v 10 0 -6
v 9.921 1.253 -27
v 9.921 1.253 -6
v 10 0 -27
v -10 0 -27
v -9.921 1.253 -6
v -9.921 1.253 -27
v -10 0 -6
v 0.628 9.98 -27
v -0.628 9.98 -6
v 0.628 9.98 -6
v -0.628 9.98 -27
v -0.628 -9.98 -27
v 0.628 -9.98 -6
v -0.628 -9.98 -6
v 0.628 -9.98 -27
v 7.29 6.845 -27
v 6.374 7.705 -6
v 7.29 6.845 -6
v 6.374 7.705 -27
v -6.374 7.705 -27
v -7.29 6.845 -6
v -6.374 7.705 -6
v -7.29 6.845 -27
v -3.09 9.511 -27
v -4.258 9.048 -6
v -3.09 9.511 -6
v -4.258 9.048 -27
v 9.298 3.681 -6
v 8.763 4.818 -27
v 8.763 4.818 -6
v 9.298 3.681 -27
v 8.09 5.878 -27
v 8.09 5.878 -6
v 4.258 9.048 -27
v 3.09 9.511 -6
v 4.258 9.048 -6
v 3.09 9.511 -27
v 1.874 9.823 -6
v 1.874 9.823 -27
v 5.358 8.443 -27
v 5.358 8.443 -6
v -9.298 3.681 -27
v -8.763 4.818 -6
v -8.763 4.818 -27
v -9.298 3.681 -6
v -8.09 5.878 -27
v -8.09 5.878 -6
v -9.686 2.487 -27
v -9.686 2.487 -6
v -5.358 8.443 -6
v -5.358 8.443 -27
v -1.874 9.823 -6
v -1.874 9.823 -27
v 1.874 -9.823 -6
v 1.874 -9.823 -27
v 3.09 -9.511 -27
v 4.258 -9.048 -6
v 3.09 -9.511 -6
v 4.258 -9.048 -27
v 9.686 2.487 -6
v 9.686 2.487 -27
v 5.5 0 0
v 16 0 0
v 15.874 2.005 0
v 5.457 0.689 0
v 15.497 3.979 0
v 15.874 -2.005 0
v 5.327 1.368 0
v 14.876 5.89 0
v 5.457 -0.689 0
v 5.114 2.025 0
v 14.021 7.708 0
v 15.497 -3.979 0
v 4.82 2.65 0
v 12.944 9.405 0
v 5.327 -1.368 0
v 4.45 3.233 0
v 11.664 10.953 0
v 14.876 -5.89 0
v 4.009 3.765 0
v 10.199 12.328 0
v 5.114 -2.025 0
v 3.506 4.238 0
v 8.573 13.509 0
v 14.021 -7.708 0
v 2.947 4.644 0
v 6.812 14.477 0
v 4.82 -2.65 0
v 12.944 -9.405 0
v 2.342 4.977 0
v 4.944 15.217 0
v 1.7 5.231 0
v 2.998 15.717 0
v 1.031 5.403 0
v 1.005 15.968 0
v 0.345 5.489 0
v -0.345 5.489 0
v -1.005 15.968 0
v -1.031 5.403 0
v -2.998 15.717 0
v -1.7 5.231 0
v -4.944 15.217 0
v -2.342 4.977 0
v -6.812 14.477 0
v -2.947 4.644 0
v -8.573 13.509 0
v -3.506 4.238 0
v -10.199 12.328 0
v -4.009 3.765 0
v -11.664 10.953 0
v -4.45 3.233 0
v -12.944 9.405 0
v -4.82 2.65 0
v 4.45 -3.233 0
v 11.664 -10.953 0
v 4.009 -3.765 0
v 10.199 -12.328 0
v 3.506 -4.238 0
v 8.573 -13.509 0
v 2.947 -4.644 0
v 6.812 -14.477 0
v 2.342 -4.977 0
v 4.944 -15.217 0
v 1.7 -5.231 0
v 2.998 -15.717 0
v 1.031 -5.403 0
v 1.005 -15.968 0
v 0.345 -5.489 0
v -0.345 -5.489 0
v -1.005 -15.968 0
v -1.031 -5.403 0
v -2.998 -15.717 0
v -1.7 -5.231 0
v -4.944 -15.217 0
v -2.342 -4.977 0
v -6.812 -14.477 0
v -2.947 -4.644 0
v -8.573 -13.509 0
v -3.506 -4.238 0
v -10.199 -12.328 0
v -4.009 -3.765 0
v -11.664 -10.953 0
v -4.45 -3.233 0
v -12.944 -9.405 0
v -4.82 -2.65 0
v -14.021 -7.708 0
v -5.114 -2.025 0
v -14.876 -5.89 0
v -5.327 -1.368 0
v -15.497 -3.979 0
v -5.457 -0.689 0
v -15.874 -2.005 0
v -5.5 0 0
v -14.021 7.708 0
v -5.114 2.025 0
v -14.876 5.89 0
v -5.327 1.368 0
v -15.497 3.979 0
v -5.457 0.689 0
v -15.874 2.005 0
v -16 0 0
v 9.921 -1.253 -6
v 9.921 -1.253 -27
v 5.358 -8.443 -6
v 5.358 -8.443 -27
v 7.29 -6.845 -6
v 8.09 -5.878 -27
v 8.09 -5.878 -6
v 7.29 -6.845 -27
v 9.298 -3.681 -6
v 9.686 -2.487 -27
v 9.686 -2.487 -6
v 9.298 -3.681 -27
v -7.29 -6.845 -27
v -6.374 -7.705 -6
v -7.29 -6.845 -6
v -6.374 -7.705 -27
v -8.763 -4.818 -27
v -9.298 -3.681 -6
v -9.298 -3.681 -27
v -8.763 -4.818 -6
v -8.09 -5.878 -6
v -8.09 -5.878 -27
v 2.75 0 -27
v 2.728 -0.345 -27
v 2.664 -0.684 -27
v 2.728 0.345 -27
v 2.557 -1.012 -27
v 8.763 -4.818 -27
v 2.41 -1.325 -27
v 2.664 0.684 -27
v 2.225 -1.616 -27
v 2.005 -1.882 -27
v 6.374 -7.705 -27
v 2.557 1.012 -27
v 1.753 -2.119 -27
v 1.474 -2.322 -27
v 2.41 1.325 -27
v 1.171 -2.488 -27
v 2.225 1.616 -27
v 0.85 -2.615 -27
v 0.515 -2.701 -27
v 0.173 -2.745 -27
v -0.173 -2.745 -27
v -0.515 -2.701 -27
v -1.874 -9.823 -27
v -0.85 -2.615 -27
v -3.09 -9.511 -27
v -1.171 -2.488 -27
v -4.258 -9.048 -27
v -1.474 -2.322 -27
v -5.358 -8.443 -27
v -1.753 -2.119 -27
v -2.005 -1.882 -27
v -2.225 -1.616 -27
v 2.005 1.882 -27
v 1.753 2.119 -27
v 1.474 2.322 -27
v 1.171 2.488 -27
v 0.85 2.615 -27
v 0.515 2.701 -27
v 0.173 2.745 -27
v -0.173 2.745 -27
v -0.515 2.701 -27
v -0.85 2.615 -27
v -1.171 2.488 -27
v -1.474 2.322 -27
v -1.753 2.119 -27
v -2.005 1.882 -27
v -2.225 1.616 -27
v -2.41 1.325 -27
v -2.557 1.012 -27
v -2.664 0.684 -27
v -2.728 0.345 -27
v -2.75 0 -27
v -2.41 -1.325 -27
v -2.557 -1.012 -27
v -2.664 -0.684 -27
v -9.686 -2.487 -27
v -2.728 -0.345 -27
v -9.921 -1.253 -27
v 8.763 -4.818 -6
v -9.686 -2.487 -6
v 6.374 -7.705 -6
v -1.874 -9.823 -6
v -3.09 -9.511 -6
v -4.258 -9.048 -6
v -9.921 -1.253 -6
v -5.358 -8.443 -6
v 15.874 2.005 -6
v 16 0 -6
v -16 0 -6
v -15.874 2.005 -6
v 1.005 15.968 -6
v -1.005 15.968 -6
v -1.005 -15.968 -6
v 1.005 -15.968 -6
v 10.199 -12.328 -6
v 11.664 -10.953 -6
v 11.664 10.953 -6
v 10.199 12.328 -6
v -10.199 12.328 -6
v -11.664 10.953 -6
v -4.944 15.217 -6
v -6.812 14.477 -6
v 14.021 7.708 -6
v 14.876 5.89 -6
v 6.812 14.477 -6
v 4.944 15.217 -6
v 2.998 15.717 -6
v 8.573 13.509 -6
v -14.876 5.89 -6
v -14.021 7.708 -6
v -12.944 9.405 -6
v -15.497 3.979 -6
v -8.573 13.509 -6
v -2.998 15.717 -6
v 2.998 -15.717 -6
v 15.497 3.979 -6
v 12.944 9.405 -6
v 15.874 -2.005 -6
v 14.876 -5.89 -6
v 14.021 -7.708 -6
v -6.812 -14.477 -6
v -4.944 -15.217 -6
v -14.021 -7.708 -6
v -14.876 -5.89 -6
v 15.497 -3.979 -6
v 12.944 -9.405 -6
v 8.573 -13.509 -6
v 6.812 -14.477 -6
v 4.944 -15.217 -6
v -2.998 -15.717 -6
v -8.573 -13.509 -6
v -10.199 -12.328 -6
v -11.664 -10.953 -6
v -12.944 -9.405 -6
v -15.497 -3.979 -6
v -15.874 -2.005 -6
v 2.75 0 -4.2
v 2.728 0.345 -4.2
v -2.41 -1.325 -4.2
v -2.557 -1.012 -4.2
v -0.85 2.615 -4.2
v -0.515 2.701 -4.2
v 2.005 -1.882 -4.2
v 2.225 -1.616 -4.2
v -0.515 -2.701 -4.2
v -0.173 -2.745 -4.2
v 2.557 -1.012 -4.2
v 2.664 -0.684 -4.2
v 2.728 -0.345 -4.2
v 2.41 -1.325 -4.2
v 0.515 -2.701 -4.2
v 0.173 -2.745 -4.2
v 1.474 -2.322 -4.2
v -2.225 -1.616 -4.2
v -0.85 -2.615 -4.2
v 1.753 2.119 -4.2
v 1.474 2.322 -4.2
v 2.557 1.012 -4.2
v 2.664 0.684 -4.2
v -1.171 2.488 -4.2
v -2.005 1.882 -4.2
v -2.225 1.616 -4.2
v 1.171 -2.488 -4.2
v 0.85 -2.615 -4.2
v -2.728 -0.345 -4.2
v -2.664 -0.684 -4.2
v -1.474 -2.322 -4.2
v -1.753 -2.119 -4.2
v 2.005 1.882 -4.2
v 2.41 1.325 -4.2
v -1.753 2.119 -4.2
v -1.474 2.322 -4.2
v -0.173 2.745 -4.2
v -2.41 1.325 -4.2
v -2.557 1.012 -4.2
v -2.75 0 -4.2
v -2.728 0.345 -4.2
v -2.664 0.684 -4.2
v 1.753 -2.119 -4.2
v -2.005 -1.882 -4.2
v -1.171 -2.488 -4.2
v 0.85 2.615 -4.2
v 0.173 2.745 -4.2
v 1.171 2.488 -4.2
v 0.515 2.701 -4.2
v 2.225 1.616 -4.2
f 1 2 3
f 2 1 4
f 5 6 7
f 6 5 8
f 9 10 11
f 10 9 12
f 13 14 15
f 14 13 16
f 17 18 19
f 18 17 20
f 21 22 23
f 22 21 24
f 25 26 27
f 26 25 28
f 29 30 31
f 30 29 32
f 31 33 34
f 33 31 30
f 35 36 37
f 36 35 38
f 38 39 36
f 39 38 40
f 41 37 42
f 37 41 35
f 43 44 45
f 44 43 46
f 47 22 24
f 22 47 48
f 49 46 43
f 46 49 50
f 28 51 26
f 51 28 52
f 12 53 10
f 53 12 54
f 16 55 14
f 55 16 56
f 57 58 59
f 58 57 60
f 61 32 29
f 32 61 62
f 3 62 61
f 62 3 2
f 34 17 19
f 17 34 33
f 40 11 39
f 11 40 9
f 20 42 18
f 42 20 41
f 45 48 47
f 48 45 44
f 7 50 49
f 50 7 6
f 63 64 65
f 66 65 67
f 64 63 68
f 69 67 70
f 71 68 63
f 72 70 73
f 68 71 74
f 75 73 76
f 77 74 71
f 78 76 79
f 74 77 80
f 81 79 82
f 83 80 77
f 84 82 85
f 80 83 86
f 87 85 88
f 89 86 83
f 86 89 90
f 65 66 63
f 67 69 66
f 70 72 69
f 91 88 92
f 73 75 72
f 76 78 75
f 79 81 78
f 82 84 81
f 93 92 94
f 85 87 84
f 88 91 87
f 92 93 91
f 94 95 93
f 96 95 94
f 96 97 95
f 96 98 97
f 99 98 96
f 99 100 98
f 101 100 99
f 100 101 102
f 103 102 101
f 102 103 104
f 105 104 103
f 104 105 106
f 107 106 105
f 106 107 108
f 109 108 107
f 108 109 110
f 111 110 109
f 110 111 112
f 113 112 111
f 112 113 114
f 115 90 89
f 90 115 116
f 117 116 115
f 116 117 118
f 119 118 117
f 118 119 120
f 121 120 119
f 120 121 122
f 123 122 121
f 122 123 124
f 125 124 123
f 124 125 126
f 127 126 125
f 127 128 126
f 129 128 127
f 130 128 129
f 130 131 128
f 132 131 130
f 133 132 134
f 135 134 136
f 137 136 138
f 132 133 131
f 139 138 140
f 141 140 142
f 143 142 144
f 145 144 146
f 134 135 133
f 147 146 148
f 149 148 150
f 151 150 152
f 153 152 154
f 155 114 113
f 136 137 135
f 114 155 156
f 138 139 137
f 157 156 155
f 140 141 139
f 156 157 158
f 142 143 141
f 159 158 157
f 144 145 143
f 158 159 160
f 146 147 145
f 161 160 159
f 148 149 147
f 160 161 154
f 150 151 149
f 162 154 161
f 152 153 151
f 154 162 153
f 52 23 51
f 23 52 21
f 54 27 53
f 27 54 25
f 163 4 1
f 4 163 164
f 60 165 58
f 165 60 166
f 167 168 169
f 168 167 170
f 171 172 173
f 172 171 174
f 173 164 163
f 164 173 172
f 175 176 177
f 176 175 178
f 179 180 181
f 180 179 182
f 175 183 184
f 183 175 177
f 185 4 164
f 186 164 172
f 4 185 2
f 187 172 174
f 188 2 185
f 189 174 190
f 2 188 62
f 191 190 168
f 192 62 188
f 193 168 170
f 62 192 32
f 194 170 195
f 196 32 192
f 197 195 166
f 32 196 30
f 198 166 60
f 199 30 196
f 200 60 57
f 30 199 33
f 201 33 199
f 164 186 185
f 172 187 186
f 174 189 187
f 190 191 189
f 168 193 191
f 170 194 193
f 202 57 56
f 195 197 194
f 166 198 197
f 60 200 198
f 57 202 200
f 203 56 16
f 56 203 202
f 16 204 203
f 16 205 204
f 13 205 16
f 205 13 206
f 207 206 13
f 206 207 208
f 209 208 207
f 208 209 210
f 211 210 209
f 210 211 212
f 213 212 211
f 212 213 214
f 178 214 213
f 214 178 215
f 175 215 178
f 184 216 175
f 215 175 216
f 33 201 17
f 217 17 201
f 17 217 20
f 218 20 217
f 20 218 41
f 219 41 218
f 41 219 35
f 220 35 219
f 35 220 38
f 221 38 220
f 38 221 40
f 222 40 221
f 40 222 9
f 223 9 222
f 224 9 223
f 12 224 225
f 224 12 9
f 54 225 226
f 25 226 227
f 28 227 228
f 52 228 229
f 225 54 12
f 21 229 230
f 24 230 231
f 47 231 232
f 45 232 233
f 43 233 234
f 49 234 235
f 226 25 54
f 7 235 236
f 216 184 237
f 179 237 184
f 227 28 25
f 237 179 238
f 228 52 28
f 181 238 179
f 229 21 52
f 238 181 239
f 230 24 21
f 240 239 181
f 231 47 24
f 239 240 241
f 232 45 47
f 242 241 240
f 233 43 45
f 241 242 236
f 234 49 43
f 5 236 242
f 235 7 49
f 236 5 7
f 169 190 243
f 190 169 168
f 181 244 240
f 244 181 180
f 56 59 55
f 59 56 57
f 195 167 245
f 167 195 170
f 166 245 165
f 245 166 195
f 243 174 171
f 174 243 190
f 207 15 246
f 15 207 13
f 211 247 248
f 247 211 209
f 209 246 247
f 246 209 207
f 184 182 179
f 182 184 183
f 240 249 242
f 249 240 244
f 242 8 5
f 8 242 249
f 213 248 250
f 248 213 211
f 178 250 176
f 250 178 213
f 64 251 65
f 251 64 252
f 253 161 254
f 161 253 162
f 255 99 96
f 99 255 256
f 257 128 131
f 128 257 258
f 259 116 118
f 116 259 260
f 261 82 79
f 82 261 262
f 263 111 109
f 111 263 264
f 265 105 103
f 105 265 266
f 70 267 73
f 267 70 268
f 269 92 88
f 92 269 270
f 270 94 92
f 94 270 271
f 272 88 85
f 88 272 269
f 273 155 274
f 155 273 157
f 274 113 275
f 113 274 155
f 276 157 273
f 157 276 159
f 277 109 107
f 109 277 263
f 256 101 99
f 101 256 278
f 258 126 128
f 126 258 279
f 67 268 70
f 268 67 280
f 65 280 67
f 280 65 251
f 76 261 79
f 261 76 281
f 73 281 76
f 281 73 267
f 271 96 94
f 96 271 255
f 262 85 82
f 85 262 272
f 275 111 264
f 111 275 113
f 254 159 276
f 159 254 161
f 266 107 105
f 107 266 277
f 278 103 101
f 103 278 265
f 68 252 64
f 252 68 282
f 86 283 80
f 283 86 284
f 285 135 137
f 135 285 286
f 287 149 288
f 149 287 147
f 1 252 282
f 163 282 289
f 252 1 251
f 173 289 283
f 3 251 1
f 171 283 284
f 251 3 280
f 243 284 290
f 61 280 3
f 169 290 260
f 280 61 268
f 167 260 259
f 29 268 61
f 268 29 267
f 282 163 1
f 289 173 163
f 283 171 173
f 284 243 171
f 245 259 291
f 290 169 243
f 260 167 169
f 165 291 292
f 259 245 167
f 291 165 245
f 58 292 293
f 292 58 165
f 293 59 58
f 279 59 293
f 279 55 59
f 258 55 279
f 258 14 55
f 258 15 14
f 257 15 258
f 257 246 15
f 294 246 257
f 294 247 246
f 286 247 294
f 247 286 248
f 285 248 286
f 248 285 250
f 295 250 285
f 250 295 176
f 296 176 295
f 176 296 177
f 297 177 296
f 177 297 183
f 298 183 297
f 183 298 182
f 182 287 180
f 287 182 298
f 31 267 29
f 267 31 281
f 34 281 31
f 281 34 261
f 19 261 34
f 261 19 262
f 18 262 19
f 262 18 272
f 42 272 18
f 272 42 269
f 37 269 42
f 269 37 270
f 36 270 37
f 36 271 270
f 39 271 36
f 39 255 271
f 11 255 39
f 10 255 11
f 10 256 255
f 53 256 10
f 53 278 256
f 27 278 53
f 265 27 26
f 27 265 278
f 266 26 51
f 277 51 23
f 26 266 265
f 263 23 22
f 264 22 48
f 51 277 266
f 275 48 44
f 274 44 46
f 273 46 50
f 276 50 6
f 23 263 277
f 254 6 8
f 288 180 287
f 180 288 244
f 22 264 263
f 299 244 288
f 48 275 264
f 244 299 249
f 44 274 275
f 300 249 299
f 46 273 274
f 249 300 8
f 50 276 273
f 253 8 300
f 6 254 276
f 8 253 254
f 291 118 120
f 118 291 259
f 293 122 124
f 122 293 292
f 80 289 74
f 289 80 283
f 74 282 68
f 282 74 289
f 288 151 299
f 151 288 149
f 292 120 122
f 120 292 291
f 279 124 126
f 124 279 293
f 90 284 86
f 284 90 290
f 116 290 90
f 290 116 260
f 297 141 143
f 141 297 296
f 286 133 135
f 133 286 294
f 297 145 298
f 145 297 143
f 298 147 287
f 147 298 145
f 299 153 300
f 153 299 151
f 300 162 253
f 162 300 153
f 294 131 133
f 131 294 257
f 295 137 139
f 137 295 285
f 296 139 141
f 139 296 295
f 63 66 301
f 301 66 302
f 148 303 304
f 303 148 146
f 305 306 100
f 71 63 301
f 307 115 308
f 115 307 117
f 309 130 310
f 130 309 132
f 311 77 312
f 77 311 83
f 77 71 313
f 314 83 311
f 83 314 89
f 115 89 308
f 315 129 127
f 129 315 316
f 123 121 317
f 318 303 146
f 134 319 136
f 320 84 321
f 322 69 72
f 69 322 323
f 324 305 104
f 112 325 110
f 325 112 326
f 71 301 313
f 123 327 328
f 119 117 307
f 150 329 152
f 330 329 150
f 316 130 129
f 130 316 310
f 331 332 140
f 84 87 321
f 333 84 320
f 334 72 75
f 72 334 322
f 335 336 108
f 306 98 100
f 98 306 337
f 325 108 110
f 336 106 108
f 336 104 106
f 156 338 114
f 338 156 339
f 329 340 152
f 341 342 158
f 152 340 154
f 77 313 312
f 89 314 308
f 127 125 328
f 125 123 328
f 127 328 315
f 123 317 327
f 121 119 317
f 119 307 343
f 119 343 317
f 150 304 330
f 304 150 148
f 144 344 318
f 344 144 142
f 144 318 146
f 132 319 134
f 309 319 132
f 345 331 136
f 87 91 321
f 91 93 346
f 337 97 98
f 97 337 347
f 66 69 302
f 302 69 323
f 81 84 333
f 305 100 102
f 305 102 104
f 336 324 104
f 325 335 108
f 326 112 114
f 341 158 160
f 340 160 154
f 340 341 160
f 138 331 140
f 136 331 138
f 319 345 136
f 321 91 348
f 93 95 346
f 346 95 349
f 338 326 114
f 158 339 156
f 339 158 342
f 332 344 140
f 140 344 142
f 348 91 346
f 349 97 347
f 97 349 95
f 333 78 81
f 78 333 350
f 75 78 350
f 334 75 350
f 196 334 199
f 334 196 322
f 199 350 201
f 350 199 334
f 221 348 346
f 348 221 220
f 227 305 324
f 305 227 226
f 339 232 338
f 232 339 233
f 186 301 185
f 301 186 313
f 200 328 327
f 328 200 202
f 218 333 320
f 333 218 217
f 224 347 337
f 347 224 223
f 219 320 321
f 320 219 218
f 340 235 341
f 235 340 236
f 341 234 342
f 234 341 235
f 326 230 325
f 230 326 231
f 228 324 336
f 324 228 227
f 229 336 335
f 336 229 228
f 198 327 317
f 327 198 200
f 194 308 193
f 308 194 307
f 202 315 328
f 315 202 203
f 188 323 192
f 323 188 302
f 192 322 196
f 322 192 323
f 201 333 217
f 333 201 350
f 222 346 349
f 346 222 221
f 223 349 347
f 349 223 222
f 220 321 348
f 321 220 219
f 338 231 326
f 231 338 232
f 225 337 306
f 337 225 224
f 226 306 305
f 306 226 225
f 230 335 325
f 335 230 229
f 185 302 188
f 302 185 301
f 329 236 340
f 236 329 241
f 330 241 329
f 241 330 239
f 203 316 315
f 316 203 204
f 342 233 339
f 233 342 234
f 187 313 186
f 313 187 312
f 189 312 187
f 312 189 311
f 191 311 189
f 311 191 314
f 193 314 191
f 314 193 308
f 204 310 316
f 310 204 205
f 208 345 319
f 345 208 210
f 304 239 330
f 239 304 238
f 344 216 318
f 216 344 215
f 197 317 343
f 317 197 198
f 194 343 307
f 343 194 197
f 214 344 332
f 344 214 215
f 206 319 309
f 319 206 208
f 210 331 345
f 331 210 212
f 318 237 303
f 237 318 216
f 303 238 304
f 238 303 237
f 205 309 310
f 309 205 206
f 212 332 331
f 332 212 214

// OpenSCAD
$fn = 50;


difference() {
	union() {
		translate(v = [0, 0, -27.0000000000]) {
			cylinder(h = 27, r = 10.0000000000);
		}
		translate(v = [0, 0, -6.0000000000]) {
			cylinder(h = 6, r = 16.0000000000);
		}
	}
	union() {
		translate(v = [0, 0, 0]) {
			rotate(a = [0, 0, 0]) {
				difference() {
					union() {
						#translate(v = [0, 0, -27.0000000000]) {
							cylinder(h = 27, r = 2.2500000000);
						}
						#translate(v = [0, 0, -4.2000000000]) {
							cylinder(h = 4.2000000000, r = 10.0000000000, r1 = 2.7500000000, r2 = 5.5000000000);
						}
						#translate(v = [0, 0, -27.0000000000]) {
							cylinder(h = 27, r = 2.7500000000);
						}
						#translate(v = [0, 0, -27.0000000000]) {
							cylinder(h = 27, r = 2.2500000000);
						}
					}
					union();
				}
			}
		}
	}
}
